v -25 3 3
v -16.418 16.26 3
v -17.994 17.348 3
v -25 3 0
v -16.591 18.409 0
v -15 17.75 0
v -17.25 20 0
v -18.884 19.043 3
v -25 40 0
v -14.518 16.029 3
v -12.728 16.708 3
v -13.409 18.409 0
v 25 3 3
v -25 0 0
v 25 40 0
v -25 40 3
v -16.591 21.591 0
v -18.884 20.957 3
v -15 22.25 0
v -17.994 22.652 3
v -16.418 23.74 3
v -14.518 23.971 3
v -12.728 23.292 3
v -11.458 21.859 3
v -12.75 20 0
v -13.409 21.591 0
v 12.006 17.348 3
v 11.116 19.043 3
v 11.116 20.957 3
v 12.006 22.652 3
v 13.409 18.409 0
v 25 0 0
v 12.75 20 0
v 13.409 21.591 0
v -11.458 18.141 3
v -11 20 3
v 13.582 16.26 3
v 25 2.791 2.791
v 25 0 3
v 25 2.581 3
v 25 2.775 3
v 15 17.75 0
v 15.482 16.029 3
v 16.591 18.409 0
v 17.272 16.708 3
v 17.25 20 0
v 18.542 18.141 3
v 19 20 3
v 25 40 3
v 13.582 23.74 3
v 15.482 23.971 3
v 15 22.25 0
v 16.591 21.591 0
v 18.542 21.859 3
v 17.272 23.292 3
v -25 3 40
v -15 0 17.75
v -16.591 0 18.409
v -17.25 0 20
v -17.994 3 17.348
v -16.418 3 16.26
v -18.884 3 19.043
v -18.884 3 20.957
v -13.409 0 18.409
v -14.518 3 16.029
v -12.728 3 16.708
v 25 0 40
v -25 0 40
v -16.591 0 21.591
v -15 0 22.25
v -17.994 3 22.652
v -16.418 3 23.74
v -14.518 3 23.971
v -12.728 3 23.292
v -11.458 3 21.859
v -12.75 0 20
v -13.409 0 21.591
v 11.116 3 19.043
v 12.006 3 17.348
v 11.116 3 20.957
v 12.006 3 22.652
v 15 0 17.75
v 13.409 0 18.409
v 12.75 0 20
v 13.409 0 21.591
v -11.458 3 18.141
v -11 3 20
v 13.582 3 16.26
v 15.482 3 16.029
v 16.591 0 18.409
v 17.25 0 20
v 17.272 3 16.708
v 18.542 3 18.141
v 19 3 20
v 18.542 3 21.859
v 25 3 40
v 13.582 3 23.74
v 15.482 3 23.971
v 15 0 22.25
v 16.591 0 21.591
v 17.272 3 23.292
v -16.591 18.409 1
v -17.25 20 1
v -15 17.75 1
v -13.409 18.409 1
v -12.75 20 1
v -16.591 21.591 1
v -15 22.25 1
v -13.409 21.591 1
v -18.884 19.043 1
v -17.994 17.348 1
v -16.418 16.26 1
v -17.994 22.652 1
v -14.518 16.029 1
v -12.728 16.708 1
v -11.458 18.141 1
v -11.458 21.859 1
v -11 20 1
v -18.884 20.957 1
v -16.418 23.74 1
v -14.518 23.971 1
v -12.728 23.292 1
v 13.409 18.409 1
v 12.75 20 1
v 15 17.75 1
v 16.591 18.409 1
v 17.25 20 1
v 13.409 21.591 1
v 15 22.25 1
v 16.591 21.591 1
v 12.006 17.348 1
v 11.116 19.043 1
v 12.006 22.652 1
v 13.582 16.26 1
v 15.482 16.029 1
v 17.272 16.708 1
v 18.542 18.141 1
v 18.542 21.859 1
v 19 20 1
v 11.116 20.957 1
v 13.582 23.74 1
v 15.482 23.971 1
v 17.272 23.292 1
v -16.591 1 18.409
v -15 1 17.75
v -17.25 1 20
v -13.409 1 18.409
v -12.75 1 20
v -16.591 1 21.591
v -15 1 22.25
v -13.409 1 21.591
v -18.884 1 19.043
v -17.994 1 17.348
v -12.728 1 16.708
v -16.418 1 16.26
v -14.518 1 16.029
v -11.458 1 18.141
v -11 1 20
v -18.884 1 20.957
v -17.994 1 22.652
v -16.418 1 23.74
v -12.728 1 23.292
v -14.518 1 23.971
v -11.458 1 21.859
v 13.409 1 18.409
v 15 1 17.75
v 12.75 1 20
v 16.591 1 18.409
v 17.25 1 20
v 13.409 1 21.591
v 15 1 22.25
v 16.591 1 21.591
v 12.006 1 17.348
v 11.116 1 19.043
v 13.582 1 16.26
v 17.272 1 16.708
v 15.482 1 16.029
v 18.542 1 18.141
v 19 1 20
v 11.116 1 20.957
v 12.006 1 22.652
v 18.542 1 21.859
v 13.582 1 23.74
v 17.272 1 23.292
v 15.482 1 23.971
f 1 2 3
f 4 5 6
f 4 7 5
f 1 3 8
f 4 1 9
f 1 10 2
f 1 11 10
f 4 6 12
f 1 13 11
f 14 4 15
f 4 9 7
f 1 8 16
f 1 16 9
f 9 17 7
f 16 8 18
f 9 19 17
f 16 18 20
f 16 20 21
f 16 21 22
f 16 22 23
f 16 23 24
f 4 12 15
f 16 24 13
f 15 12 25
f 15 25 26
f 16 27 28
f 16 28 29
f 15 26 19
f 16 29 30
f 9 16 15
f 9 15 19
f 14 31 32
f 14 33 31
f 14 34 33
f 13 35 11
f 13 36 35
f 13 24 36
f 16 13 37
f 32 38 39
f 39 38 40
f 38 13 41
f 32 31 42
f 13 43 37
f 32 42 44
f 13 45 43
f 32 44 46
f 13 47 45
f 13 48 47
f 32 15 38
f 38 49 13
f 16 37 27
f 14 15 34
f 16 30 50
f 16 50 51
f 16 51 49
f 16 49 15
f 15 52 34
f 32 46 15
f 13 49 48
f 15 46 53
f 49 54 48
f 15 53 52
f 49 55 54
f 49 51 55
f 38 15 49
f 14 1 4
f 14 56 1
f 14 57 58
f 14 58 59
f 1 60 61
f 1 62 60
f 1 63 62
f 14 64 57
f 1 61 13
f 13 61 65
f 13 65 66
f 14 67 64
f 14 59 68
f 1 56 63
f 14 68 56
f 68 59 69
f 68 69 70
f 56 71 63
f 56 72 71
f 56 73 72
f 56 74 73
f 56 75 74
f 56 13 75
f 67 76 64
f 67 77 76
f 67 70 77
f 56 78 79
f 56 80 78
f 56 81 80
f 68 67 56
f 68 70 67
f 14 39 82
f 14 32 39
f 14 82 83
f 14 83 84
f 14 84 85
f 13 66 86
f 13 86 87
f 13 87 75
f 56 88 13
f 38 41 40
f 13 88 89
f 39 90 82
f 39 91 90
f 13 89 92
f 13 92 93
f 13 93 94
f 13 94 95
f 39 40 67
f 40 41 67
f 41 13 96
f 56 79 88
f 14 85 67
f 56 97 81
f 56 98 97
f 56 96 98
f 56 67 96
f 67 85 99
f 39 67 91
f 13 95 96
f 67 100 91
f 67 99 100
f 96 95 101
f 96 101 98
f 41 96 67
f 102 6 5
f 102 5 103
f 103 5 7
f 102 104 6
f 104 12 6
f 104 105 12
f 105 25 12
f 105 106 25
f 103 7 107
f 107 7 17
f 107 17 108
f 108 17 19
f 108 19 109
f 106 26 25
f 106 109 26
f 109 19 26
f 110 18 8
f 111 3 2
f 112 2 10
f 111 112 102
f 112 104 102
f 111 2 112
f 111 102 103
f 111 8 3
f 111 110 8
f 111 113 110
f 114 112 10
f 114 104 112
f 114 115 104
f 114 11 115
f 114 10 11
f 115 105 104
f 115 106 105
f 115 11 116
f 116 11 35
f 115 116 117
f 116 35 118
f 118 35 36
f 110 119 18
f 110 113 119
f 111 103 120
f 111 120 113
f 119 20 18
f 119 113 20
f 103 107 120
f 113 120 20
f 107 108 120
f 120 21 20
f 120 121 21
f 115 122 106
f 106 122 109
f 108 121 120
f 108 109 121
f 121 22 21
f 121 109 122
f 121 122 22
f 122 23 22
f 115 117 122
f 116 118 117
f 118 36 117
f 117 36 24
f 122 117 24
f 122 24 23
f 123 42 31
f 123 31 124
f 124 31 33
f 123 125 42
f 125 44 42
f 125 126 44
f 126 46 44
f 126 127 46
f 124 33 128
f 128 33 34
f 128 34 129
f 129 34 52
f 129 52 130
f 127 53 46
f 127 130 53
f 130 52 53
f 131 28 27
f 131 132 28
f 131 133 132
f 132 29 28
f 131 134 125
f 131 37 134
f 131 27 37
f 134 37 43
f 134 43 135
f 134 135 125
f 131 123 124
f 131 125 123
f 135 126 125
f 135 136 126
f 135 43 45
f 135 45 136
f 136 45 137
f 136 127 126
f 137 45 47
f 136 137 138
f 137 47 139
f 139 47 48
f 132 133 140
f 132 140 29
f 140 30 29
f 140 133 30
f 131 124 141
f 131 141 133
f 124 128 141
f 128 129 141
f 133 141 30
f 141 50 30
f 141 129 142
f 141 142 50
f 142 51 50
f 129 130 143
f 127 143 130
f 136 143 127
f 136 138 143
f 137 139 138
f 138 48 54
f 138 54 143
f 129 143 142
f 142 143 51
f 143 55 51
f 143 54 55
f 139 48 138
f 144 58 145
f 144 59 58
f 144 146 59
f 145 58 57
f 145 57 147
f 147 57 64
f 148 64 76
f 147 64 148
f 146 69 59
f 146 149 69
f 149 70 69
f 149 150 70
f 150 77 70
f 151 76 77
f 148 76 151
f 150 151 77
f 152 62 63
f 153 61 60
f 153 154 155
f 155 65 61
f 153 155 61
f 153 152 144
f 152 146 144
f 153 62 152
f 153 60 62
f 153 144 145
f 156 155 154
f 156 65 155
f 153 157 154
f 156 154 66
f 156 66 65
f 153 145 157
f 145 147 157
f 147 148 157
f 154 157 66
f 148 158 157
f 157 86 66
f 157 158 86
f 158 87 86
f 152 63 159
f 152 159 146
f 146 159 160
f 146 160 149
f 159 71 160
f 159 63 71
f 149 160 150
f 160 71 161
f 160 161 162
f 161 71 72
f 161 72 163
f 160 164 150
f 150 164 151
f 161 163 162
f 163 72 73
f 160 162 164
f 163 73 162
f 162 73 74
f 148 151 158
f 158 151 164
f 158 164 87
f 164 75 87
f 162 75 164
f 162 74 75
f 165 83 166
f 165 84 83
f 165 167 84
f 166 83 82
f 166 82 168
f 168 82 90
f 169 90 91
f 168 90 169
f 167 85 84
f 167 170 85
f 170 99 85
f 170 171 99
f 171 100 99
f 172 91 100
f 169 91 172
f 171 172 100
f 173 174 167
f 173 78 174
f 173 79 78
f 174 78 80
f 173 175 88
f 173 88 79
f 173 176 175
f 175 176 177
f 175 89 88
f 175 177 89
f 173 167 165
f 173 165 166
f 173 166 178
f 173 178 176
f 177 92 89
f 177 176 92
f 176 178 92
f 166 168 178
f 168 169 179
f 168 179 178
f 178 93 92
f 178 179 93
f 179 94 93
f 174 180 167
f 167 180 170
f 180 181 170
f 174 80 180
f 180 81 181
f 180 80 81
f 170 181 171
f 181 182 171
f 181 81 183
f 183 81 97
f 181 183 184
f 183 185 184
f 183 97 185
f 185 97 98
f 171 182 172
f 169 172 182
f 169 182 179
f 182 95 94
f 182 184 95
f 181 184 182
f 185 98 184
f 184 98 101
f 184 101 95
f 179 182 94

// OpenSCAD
// L字金具 (L-bracket)
w       = 50;   // 幅
d       = 40;   // 奥行き
h       = 40;   // 高さ
t       = 3;    // 板厚
hole_d  = 4.5;  // 貫通穴径
cs_d    = 8;    // 皿座面径
cs_depth= 2;    // 皿座面深さ
offset  = 10;   // 縁からの距離
hole_x  = [ -w/2 + offset, w/2 - offset ];

module bracket() {
    difference() {
        // 板本体
        union() {
            // 水平フランジ
            translate([-w/2, 0, 0])
                cube([w, d, t]);
            // 垂直フランジ
            translate([-w/2, 0, 0])
                cube([w, t, h]);
        }
        // 水平フランジの穴
        for (x_pos = hole_x) {
            // 貫通穴
            translate([x_pos, d/2, t/2])
                cylinder(d=hole_d, h=t+2, center=true);
            // 皿穴
            translate([x_pos, d/2, t - cs_depth/2])
                cylinder(d=cs_d, h=cs_depth, center=true);
        }
        // 垂直フランジの穴
        for (x_pos = hole_x) {
            // 貫通穴
            translate([x_pos, t/2, h/2])
                rotate([90, 0, 0])
                    cylinder(d=hole_d, h=t+2, center=true);
            // 皿穴
            translate([x_pos, t - cs_depth/2, h/2])
                rotate([90, 0, 0])
                    cylinder(d=cs_d, h=cs_depth, center=true);
        }
    }
}

// モデル出力
bracket();
